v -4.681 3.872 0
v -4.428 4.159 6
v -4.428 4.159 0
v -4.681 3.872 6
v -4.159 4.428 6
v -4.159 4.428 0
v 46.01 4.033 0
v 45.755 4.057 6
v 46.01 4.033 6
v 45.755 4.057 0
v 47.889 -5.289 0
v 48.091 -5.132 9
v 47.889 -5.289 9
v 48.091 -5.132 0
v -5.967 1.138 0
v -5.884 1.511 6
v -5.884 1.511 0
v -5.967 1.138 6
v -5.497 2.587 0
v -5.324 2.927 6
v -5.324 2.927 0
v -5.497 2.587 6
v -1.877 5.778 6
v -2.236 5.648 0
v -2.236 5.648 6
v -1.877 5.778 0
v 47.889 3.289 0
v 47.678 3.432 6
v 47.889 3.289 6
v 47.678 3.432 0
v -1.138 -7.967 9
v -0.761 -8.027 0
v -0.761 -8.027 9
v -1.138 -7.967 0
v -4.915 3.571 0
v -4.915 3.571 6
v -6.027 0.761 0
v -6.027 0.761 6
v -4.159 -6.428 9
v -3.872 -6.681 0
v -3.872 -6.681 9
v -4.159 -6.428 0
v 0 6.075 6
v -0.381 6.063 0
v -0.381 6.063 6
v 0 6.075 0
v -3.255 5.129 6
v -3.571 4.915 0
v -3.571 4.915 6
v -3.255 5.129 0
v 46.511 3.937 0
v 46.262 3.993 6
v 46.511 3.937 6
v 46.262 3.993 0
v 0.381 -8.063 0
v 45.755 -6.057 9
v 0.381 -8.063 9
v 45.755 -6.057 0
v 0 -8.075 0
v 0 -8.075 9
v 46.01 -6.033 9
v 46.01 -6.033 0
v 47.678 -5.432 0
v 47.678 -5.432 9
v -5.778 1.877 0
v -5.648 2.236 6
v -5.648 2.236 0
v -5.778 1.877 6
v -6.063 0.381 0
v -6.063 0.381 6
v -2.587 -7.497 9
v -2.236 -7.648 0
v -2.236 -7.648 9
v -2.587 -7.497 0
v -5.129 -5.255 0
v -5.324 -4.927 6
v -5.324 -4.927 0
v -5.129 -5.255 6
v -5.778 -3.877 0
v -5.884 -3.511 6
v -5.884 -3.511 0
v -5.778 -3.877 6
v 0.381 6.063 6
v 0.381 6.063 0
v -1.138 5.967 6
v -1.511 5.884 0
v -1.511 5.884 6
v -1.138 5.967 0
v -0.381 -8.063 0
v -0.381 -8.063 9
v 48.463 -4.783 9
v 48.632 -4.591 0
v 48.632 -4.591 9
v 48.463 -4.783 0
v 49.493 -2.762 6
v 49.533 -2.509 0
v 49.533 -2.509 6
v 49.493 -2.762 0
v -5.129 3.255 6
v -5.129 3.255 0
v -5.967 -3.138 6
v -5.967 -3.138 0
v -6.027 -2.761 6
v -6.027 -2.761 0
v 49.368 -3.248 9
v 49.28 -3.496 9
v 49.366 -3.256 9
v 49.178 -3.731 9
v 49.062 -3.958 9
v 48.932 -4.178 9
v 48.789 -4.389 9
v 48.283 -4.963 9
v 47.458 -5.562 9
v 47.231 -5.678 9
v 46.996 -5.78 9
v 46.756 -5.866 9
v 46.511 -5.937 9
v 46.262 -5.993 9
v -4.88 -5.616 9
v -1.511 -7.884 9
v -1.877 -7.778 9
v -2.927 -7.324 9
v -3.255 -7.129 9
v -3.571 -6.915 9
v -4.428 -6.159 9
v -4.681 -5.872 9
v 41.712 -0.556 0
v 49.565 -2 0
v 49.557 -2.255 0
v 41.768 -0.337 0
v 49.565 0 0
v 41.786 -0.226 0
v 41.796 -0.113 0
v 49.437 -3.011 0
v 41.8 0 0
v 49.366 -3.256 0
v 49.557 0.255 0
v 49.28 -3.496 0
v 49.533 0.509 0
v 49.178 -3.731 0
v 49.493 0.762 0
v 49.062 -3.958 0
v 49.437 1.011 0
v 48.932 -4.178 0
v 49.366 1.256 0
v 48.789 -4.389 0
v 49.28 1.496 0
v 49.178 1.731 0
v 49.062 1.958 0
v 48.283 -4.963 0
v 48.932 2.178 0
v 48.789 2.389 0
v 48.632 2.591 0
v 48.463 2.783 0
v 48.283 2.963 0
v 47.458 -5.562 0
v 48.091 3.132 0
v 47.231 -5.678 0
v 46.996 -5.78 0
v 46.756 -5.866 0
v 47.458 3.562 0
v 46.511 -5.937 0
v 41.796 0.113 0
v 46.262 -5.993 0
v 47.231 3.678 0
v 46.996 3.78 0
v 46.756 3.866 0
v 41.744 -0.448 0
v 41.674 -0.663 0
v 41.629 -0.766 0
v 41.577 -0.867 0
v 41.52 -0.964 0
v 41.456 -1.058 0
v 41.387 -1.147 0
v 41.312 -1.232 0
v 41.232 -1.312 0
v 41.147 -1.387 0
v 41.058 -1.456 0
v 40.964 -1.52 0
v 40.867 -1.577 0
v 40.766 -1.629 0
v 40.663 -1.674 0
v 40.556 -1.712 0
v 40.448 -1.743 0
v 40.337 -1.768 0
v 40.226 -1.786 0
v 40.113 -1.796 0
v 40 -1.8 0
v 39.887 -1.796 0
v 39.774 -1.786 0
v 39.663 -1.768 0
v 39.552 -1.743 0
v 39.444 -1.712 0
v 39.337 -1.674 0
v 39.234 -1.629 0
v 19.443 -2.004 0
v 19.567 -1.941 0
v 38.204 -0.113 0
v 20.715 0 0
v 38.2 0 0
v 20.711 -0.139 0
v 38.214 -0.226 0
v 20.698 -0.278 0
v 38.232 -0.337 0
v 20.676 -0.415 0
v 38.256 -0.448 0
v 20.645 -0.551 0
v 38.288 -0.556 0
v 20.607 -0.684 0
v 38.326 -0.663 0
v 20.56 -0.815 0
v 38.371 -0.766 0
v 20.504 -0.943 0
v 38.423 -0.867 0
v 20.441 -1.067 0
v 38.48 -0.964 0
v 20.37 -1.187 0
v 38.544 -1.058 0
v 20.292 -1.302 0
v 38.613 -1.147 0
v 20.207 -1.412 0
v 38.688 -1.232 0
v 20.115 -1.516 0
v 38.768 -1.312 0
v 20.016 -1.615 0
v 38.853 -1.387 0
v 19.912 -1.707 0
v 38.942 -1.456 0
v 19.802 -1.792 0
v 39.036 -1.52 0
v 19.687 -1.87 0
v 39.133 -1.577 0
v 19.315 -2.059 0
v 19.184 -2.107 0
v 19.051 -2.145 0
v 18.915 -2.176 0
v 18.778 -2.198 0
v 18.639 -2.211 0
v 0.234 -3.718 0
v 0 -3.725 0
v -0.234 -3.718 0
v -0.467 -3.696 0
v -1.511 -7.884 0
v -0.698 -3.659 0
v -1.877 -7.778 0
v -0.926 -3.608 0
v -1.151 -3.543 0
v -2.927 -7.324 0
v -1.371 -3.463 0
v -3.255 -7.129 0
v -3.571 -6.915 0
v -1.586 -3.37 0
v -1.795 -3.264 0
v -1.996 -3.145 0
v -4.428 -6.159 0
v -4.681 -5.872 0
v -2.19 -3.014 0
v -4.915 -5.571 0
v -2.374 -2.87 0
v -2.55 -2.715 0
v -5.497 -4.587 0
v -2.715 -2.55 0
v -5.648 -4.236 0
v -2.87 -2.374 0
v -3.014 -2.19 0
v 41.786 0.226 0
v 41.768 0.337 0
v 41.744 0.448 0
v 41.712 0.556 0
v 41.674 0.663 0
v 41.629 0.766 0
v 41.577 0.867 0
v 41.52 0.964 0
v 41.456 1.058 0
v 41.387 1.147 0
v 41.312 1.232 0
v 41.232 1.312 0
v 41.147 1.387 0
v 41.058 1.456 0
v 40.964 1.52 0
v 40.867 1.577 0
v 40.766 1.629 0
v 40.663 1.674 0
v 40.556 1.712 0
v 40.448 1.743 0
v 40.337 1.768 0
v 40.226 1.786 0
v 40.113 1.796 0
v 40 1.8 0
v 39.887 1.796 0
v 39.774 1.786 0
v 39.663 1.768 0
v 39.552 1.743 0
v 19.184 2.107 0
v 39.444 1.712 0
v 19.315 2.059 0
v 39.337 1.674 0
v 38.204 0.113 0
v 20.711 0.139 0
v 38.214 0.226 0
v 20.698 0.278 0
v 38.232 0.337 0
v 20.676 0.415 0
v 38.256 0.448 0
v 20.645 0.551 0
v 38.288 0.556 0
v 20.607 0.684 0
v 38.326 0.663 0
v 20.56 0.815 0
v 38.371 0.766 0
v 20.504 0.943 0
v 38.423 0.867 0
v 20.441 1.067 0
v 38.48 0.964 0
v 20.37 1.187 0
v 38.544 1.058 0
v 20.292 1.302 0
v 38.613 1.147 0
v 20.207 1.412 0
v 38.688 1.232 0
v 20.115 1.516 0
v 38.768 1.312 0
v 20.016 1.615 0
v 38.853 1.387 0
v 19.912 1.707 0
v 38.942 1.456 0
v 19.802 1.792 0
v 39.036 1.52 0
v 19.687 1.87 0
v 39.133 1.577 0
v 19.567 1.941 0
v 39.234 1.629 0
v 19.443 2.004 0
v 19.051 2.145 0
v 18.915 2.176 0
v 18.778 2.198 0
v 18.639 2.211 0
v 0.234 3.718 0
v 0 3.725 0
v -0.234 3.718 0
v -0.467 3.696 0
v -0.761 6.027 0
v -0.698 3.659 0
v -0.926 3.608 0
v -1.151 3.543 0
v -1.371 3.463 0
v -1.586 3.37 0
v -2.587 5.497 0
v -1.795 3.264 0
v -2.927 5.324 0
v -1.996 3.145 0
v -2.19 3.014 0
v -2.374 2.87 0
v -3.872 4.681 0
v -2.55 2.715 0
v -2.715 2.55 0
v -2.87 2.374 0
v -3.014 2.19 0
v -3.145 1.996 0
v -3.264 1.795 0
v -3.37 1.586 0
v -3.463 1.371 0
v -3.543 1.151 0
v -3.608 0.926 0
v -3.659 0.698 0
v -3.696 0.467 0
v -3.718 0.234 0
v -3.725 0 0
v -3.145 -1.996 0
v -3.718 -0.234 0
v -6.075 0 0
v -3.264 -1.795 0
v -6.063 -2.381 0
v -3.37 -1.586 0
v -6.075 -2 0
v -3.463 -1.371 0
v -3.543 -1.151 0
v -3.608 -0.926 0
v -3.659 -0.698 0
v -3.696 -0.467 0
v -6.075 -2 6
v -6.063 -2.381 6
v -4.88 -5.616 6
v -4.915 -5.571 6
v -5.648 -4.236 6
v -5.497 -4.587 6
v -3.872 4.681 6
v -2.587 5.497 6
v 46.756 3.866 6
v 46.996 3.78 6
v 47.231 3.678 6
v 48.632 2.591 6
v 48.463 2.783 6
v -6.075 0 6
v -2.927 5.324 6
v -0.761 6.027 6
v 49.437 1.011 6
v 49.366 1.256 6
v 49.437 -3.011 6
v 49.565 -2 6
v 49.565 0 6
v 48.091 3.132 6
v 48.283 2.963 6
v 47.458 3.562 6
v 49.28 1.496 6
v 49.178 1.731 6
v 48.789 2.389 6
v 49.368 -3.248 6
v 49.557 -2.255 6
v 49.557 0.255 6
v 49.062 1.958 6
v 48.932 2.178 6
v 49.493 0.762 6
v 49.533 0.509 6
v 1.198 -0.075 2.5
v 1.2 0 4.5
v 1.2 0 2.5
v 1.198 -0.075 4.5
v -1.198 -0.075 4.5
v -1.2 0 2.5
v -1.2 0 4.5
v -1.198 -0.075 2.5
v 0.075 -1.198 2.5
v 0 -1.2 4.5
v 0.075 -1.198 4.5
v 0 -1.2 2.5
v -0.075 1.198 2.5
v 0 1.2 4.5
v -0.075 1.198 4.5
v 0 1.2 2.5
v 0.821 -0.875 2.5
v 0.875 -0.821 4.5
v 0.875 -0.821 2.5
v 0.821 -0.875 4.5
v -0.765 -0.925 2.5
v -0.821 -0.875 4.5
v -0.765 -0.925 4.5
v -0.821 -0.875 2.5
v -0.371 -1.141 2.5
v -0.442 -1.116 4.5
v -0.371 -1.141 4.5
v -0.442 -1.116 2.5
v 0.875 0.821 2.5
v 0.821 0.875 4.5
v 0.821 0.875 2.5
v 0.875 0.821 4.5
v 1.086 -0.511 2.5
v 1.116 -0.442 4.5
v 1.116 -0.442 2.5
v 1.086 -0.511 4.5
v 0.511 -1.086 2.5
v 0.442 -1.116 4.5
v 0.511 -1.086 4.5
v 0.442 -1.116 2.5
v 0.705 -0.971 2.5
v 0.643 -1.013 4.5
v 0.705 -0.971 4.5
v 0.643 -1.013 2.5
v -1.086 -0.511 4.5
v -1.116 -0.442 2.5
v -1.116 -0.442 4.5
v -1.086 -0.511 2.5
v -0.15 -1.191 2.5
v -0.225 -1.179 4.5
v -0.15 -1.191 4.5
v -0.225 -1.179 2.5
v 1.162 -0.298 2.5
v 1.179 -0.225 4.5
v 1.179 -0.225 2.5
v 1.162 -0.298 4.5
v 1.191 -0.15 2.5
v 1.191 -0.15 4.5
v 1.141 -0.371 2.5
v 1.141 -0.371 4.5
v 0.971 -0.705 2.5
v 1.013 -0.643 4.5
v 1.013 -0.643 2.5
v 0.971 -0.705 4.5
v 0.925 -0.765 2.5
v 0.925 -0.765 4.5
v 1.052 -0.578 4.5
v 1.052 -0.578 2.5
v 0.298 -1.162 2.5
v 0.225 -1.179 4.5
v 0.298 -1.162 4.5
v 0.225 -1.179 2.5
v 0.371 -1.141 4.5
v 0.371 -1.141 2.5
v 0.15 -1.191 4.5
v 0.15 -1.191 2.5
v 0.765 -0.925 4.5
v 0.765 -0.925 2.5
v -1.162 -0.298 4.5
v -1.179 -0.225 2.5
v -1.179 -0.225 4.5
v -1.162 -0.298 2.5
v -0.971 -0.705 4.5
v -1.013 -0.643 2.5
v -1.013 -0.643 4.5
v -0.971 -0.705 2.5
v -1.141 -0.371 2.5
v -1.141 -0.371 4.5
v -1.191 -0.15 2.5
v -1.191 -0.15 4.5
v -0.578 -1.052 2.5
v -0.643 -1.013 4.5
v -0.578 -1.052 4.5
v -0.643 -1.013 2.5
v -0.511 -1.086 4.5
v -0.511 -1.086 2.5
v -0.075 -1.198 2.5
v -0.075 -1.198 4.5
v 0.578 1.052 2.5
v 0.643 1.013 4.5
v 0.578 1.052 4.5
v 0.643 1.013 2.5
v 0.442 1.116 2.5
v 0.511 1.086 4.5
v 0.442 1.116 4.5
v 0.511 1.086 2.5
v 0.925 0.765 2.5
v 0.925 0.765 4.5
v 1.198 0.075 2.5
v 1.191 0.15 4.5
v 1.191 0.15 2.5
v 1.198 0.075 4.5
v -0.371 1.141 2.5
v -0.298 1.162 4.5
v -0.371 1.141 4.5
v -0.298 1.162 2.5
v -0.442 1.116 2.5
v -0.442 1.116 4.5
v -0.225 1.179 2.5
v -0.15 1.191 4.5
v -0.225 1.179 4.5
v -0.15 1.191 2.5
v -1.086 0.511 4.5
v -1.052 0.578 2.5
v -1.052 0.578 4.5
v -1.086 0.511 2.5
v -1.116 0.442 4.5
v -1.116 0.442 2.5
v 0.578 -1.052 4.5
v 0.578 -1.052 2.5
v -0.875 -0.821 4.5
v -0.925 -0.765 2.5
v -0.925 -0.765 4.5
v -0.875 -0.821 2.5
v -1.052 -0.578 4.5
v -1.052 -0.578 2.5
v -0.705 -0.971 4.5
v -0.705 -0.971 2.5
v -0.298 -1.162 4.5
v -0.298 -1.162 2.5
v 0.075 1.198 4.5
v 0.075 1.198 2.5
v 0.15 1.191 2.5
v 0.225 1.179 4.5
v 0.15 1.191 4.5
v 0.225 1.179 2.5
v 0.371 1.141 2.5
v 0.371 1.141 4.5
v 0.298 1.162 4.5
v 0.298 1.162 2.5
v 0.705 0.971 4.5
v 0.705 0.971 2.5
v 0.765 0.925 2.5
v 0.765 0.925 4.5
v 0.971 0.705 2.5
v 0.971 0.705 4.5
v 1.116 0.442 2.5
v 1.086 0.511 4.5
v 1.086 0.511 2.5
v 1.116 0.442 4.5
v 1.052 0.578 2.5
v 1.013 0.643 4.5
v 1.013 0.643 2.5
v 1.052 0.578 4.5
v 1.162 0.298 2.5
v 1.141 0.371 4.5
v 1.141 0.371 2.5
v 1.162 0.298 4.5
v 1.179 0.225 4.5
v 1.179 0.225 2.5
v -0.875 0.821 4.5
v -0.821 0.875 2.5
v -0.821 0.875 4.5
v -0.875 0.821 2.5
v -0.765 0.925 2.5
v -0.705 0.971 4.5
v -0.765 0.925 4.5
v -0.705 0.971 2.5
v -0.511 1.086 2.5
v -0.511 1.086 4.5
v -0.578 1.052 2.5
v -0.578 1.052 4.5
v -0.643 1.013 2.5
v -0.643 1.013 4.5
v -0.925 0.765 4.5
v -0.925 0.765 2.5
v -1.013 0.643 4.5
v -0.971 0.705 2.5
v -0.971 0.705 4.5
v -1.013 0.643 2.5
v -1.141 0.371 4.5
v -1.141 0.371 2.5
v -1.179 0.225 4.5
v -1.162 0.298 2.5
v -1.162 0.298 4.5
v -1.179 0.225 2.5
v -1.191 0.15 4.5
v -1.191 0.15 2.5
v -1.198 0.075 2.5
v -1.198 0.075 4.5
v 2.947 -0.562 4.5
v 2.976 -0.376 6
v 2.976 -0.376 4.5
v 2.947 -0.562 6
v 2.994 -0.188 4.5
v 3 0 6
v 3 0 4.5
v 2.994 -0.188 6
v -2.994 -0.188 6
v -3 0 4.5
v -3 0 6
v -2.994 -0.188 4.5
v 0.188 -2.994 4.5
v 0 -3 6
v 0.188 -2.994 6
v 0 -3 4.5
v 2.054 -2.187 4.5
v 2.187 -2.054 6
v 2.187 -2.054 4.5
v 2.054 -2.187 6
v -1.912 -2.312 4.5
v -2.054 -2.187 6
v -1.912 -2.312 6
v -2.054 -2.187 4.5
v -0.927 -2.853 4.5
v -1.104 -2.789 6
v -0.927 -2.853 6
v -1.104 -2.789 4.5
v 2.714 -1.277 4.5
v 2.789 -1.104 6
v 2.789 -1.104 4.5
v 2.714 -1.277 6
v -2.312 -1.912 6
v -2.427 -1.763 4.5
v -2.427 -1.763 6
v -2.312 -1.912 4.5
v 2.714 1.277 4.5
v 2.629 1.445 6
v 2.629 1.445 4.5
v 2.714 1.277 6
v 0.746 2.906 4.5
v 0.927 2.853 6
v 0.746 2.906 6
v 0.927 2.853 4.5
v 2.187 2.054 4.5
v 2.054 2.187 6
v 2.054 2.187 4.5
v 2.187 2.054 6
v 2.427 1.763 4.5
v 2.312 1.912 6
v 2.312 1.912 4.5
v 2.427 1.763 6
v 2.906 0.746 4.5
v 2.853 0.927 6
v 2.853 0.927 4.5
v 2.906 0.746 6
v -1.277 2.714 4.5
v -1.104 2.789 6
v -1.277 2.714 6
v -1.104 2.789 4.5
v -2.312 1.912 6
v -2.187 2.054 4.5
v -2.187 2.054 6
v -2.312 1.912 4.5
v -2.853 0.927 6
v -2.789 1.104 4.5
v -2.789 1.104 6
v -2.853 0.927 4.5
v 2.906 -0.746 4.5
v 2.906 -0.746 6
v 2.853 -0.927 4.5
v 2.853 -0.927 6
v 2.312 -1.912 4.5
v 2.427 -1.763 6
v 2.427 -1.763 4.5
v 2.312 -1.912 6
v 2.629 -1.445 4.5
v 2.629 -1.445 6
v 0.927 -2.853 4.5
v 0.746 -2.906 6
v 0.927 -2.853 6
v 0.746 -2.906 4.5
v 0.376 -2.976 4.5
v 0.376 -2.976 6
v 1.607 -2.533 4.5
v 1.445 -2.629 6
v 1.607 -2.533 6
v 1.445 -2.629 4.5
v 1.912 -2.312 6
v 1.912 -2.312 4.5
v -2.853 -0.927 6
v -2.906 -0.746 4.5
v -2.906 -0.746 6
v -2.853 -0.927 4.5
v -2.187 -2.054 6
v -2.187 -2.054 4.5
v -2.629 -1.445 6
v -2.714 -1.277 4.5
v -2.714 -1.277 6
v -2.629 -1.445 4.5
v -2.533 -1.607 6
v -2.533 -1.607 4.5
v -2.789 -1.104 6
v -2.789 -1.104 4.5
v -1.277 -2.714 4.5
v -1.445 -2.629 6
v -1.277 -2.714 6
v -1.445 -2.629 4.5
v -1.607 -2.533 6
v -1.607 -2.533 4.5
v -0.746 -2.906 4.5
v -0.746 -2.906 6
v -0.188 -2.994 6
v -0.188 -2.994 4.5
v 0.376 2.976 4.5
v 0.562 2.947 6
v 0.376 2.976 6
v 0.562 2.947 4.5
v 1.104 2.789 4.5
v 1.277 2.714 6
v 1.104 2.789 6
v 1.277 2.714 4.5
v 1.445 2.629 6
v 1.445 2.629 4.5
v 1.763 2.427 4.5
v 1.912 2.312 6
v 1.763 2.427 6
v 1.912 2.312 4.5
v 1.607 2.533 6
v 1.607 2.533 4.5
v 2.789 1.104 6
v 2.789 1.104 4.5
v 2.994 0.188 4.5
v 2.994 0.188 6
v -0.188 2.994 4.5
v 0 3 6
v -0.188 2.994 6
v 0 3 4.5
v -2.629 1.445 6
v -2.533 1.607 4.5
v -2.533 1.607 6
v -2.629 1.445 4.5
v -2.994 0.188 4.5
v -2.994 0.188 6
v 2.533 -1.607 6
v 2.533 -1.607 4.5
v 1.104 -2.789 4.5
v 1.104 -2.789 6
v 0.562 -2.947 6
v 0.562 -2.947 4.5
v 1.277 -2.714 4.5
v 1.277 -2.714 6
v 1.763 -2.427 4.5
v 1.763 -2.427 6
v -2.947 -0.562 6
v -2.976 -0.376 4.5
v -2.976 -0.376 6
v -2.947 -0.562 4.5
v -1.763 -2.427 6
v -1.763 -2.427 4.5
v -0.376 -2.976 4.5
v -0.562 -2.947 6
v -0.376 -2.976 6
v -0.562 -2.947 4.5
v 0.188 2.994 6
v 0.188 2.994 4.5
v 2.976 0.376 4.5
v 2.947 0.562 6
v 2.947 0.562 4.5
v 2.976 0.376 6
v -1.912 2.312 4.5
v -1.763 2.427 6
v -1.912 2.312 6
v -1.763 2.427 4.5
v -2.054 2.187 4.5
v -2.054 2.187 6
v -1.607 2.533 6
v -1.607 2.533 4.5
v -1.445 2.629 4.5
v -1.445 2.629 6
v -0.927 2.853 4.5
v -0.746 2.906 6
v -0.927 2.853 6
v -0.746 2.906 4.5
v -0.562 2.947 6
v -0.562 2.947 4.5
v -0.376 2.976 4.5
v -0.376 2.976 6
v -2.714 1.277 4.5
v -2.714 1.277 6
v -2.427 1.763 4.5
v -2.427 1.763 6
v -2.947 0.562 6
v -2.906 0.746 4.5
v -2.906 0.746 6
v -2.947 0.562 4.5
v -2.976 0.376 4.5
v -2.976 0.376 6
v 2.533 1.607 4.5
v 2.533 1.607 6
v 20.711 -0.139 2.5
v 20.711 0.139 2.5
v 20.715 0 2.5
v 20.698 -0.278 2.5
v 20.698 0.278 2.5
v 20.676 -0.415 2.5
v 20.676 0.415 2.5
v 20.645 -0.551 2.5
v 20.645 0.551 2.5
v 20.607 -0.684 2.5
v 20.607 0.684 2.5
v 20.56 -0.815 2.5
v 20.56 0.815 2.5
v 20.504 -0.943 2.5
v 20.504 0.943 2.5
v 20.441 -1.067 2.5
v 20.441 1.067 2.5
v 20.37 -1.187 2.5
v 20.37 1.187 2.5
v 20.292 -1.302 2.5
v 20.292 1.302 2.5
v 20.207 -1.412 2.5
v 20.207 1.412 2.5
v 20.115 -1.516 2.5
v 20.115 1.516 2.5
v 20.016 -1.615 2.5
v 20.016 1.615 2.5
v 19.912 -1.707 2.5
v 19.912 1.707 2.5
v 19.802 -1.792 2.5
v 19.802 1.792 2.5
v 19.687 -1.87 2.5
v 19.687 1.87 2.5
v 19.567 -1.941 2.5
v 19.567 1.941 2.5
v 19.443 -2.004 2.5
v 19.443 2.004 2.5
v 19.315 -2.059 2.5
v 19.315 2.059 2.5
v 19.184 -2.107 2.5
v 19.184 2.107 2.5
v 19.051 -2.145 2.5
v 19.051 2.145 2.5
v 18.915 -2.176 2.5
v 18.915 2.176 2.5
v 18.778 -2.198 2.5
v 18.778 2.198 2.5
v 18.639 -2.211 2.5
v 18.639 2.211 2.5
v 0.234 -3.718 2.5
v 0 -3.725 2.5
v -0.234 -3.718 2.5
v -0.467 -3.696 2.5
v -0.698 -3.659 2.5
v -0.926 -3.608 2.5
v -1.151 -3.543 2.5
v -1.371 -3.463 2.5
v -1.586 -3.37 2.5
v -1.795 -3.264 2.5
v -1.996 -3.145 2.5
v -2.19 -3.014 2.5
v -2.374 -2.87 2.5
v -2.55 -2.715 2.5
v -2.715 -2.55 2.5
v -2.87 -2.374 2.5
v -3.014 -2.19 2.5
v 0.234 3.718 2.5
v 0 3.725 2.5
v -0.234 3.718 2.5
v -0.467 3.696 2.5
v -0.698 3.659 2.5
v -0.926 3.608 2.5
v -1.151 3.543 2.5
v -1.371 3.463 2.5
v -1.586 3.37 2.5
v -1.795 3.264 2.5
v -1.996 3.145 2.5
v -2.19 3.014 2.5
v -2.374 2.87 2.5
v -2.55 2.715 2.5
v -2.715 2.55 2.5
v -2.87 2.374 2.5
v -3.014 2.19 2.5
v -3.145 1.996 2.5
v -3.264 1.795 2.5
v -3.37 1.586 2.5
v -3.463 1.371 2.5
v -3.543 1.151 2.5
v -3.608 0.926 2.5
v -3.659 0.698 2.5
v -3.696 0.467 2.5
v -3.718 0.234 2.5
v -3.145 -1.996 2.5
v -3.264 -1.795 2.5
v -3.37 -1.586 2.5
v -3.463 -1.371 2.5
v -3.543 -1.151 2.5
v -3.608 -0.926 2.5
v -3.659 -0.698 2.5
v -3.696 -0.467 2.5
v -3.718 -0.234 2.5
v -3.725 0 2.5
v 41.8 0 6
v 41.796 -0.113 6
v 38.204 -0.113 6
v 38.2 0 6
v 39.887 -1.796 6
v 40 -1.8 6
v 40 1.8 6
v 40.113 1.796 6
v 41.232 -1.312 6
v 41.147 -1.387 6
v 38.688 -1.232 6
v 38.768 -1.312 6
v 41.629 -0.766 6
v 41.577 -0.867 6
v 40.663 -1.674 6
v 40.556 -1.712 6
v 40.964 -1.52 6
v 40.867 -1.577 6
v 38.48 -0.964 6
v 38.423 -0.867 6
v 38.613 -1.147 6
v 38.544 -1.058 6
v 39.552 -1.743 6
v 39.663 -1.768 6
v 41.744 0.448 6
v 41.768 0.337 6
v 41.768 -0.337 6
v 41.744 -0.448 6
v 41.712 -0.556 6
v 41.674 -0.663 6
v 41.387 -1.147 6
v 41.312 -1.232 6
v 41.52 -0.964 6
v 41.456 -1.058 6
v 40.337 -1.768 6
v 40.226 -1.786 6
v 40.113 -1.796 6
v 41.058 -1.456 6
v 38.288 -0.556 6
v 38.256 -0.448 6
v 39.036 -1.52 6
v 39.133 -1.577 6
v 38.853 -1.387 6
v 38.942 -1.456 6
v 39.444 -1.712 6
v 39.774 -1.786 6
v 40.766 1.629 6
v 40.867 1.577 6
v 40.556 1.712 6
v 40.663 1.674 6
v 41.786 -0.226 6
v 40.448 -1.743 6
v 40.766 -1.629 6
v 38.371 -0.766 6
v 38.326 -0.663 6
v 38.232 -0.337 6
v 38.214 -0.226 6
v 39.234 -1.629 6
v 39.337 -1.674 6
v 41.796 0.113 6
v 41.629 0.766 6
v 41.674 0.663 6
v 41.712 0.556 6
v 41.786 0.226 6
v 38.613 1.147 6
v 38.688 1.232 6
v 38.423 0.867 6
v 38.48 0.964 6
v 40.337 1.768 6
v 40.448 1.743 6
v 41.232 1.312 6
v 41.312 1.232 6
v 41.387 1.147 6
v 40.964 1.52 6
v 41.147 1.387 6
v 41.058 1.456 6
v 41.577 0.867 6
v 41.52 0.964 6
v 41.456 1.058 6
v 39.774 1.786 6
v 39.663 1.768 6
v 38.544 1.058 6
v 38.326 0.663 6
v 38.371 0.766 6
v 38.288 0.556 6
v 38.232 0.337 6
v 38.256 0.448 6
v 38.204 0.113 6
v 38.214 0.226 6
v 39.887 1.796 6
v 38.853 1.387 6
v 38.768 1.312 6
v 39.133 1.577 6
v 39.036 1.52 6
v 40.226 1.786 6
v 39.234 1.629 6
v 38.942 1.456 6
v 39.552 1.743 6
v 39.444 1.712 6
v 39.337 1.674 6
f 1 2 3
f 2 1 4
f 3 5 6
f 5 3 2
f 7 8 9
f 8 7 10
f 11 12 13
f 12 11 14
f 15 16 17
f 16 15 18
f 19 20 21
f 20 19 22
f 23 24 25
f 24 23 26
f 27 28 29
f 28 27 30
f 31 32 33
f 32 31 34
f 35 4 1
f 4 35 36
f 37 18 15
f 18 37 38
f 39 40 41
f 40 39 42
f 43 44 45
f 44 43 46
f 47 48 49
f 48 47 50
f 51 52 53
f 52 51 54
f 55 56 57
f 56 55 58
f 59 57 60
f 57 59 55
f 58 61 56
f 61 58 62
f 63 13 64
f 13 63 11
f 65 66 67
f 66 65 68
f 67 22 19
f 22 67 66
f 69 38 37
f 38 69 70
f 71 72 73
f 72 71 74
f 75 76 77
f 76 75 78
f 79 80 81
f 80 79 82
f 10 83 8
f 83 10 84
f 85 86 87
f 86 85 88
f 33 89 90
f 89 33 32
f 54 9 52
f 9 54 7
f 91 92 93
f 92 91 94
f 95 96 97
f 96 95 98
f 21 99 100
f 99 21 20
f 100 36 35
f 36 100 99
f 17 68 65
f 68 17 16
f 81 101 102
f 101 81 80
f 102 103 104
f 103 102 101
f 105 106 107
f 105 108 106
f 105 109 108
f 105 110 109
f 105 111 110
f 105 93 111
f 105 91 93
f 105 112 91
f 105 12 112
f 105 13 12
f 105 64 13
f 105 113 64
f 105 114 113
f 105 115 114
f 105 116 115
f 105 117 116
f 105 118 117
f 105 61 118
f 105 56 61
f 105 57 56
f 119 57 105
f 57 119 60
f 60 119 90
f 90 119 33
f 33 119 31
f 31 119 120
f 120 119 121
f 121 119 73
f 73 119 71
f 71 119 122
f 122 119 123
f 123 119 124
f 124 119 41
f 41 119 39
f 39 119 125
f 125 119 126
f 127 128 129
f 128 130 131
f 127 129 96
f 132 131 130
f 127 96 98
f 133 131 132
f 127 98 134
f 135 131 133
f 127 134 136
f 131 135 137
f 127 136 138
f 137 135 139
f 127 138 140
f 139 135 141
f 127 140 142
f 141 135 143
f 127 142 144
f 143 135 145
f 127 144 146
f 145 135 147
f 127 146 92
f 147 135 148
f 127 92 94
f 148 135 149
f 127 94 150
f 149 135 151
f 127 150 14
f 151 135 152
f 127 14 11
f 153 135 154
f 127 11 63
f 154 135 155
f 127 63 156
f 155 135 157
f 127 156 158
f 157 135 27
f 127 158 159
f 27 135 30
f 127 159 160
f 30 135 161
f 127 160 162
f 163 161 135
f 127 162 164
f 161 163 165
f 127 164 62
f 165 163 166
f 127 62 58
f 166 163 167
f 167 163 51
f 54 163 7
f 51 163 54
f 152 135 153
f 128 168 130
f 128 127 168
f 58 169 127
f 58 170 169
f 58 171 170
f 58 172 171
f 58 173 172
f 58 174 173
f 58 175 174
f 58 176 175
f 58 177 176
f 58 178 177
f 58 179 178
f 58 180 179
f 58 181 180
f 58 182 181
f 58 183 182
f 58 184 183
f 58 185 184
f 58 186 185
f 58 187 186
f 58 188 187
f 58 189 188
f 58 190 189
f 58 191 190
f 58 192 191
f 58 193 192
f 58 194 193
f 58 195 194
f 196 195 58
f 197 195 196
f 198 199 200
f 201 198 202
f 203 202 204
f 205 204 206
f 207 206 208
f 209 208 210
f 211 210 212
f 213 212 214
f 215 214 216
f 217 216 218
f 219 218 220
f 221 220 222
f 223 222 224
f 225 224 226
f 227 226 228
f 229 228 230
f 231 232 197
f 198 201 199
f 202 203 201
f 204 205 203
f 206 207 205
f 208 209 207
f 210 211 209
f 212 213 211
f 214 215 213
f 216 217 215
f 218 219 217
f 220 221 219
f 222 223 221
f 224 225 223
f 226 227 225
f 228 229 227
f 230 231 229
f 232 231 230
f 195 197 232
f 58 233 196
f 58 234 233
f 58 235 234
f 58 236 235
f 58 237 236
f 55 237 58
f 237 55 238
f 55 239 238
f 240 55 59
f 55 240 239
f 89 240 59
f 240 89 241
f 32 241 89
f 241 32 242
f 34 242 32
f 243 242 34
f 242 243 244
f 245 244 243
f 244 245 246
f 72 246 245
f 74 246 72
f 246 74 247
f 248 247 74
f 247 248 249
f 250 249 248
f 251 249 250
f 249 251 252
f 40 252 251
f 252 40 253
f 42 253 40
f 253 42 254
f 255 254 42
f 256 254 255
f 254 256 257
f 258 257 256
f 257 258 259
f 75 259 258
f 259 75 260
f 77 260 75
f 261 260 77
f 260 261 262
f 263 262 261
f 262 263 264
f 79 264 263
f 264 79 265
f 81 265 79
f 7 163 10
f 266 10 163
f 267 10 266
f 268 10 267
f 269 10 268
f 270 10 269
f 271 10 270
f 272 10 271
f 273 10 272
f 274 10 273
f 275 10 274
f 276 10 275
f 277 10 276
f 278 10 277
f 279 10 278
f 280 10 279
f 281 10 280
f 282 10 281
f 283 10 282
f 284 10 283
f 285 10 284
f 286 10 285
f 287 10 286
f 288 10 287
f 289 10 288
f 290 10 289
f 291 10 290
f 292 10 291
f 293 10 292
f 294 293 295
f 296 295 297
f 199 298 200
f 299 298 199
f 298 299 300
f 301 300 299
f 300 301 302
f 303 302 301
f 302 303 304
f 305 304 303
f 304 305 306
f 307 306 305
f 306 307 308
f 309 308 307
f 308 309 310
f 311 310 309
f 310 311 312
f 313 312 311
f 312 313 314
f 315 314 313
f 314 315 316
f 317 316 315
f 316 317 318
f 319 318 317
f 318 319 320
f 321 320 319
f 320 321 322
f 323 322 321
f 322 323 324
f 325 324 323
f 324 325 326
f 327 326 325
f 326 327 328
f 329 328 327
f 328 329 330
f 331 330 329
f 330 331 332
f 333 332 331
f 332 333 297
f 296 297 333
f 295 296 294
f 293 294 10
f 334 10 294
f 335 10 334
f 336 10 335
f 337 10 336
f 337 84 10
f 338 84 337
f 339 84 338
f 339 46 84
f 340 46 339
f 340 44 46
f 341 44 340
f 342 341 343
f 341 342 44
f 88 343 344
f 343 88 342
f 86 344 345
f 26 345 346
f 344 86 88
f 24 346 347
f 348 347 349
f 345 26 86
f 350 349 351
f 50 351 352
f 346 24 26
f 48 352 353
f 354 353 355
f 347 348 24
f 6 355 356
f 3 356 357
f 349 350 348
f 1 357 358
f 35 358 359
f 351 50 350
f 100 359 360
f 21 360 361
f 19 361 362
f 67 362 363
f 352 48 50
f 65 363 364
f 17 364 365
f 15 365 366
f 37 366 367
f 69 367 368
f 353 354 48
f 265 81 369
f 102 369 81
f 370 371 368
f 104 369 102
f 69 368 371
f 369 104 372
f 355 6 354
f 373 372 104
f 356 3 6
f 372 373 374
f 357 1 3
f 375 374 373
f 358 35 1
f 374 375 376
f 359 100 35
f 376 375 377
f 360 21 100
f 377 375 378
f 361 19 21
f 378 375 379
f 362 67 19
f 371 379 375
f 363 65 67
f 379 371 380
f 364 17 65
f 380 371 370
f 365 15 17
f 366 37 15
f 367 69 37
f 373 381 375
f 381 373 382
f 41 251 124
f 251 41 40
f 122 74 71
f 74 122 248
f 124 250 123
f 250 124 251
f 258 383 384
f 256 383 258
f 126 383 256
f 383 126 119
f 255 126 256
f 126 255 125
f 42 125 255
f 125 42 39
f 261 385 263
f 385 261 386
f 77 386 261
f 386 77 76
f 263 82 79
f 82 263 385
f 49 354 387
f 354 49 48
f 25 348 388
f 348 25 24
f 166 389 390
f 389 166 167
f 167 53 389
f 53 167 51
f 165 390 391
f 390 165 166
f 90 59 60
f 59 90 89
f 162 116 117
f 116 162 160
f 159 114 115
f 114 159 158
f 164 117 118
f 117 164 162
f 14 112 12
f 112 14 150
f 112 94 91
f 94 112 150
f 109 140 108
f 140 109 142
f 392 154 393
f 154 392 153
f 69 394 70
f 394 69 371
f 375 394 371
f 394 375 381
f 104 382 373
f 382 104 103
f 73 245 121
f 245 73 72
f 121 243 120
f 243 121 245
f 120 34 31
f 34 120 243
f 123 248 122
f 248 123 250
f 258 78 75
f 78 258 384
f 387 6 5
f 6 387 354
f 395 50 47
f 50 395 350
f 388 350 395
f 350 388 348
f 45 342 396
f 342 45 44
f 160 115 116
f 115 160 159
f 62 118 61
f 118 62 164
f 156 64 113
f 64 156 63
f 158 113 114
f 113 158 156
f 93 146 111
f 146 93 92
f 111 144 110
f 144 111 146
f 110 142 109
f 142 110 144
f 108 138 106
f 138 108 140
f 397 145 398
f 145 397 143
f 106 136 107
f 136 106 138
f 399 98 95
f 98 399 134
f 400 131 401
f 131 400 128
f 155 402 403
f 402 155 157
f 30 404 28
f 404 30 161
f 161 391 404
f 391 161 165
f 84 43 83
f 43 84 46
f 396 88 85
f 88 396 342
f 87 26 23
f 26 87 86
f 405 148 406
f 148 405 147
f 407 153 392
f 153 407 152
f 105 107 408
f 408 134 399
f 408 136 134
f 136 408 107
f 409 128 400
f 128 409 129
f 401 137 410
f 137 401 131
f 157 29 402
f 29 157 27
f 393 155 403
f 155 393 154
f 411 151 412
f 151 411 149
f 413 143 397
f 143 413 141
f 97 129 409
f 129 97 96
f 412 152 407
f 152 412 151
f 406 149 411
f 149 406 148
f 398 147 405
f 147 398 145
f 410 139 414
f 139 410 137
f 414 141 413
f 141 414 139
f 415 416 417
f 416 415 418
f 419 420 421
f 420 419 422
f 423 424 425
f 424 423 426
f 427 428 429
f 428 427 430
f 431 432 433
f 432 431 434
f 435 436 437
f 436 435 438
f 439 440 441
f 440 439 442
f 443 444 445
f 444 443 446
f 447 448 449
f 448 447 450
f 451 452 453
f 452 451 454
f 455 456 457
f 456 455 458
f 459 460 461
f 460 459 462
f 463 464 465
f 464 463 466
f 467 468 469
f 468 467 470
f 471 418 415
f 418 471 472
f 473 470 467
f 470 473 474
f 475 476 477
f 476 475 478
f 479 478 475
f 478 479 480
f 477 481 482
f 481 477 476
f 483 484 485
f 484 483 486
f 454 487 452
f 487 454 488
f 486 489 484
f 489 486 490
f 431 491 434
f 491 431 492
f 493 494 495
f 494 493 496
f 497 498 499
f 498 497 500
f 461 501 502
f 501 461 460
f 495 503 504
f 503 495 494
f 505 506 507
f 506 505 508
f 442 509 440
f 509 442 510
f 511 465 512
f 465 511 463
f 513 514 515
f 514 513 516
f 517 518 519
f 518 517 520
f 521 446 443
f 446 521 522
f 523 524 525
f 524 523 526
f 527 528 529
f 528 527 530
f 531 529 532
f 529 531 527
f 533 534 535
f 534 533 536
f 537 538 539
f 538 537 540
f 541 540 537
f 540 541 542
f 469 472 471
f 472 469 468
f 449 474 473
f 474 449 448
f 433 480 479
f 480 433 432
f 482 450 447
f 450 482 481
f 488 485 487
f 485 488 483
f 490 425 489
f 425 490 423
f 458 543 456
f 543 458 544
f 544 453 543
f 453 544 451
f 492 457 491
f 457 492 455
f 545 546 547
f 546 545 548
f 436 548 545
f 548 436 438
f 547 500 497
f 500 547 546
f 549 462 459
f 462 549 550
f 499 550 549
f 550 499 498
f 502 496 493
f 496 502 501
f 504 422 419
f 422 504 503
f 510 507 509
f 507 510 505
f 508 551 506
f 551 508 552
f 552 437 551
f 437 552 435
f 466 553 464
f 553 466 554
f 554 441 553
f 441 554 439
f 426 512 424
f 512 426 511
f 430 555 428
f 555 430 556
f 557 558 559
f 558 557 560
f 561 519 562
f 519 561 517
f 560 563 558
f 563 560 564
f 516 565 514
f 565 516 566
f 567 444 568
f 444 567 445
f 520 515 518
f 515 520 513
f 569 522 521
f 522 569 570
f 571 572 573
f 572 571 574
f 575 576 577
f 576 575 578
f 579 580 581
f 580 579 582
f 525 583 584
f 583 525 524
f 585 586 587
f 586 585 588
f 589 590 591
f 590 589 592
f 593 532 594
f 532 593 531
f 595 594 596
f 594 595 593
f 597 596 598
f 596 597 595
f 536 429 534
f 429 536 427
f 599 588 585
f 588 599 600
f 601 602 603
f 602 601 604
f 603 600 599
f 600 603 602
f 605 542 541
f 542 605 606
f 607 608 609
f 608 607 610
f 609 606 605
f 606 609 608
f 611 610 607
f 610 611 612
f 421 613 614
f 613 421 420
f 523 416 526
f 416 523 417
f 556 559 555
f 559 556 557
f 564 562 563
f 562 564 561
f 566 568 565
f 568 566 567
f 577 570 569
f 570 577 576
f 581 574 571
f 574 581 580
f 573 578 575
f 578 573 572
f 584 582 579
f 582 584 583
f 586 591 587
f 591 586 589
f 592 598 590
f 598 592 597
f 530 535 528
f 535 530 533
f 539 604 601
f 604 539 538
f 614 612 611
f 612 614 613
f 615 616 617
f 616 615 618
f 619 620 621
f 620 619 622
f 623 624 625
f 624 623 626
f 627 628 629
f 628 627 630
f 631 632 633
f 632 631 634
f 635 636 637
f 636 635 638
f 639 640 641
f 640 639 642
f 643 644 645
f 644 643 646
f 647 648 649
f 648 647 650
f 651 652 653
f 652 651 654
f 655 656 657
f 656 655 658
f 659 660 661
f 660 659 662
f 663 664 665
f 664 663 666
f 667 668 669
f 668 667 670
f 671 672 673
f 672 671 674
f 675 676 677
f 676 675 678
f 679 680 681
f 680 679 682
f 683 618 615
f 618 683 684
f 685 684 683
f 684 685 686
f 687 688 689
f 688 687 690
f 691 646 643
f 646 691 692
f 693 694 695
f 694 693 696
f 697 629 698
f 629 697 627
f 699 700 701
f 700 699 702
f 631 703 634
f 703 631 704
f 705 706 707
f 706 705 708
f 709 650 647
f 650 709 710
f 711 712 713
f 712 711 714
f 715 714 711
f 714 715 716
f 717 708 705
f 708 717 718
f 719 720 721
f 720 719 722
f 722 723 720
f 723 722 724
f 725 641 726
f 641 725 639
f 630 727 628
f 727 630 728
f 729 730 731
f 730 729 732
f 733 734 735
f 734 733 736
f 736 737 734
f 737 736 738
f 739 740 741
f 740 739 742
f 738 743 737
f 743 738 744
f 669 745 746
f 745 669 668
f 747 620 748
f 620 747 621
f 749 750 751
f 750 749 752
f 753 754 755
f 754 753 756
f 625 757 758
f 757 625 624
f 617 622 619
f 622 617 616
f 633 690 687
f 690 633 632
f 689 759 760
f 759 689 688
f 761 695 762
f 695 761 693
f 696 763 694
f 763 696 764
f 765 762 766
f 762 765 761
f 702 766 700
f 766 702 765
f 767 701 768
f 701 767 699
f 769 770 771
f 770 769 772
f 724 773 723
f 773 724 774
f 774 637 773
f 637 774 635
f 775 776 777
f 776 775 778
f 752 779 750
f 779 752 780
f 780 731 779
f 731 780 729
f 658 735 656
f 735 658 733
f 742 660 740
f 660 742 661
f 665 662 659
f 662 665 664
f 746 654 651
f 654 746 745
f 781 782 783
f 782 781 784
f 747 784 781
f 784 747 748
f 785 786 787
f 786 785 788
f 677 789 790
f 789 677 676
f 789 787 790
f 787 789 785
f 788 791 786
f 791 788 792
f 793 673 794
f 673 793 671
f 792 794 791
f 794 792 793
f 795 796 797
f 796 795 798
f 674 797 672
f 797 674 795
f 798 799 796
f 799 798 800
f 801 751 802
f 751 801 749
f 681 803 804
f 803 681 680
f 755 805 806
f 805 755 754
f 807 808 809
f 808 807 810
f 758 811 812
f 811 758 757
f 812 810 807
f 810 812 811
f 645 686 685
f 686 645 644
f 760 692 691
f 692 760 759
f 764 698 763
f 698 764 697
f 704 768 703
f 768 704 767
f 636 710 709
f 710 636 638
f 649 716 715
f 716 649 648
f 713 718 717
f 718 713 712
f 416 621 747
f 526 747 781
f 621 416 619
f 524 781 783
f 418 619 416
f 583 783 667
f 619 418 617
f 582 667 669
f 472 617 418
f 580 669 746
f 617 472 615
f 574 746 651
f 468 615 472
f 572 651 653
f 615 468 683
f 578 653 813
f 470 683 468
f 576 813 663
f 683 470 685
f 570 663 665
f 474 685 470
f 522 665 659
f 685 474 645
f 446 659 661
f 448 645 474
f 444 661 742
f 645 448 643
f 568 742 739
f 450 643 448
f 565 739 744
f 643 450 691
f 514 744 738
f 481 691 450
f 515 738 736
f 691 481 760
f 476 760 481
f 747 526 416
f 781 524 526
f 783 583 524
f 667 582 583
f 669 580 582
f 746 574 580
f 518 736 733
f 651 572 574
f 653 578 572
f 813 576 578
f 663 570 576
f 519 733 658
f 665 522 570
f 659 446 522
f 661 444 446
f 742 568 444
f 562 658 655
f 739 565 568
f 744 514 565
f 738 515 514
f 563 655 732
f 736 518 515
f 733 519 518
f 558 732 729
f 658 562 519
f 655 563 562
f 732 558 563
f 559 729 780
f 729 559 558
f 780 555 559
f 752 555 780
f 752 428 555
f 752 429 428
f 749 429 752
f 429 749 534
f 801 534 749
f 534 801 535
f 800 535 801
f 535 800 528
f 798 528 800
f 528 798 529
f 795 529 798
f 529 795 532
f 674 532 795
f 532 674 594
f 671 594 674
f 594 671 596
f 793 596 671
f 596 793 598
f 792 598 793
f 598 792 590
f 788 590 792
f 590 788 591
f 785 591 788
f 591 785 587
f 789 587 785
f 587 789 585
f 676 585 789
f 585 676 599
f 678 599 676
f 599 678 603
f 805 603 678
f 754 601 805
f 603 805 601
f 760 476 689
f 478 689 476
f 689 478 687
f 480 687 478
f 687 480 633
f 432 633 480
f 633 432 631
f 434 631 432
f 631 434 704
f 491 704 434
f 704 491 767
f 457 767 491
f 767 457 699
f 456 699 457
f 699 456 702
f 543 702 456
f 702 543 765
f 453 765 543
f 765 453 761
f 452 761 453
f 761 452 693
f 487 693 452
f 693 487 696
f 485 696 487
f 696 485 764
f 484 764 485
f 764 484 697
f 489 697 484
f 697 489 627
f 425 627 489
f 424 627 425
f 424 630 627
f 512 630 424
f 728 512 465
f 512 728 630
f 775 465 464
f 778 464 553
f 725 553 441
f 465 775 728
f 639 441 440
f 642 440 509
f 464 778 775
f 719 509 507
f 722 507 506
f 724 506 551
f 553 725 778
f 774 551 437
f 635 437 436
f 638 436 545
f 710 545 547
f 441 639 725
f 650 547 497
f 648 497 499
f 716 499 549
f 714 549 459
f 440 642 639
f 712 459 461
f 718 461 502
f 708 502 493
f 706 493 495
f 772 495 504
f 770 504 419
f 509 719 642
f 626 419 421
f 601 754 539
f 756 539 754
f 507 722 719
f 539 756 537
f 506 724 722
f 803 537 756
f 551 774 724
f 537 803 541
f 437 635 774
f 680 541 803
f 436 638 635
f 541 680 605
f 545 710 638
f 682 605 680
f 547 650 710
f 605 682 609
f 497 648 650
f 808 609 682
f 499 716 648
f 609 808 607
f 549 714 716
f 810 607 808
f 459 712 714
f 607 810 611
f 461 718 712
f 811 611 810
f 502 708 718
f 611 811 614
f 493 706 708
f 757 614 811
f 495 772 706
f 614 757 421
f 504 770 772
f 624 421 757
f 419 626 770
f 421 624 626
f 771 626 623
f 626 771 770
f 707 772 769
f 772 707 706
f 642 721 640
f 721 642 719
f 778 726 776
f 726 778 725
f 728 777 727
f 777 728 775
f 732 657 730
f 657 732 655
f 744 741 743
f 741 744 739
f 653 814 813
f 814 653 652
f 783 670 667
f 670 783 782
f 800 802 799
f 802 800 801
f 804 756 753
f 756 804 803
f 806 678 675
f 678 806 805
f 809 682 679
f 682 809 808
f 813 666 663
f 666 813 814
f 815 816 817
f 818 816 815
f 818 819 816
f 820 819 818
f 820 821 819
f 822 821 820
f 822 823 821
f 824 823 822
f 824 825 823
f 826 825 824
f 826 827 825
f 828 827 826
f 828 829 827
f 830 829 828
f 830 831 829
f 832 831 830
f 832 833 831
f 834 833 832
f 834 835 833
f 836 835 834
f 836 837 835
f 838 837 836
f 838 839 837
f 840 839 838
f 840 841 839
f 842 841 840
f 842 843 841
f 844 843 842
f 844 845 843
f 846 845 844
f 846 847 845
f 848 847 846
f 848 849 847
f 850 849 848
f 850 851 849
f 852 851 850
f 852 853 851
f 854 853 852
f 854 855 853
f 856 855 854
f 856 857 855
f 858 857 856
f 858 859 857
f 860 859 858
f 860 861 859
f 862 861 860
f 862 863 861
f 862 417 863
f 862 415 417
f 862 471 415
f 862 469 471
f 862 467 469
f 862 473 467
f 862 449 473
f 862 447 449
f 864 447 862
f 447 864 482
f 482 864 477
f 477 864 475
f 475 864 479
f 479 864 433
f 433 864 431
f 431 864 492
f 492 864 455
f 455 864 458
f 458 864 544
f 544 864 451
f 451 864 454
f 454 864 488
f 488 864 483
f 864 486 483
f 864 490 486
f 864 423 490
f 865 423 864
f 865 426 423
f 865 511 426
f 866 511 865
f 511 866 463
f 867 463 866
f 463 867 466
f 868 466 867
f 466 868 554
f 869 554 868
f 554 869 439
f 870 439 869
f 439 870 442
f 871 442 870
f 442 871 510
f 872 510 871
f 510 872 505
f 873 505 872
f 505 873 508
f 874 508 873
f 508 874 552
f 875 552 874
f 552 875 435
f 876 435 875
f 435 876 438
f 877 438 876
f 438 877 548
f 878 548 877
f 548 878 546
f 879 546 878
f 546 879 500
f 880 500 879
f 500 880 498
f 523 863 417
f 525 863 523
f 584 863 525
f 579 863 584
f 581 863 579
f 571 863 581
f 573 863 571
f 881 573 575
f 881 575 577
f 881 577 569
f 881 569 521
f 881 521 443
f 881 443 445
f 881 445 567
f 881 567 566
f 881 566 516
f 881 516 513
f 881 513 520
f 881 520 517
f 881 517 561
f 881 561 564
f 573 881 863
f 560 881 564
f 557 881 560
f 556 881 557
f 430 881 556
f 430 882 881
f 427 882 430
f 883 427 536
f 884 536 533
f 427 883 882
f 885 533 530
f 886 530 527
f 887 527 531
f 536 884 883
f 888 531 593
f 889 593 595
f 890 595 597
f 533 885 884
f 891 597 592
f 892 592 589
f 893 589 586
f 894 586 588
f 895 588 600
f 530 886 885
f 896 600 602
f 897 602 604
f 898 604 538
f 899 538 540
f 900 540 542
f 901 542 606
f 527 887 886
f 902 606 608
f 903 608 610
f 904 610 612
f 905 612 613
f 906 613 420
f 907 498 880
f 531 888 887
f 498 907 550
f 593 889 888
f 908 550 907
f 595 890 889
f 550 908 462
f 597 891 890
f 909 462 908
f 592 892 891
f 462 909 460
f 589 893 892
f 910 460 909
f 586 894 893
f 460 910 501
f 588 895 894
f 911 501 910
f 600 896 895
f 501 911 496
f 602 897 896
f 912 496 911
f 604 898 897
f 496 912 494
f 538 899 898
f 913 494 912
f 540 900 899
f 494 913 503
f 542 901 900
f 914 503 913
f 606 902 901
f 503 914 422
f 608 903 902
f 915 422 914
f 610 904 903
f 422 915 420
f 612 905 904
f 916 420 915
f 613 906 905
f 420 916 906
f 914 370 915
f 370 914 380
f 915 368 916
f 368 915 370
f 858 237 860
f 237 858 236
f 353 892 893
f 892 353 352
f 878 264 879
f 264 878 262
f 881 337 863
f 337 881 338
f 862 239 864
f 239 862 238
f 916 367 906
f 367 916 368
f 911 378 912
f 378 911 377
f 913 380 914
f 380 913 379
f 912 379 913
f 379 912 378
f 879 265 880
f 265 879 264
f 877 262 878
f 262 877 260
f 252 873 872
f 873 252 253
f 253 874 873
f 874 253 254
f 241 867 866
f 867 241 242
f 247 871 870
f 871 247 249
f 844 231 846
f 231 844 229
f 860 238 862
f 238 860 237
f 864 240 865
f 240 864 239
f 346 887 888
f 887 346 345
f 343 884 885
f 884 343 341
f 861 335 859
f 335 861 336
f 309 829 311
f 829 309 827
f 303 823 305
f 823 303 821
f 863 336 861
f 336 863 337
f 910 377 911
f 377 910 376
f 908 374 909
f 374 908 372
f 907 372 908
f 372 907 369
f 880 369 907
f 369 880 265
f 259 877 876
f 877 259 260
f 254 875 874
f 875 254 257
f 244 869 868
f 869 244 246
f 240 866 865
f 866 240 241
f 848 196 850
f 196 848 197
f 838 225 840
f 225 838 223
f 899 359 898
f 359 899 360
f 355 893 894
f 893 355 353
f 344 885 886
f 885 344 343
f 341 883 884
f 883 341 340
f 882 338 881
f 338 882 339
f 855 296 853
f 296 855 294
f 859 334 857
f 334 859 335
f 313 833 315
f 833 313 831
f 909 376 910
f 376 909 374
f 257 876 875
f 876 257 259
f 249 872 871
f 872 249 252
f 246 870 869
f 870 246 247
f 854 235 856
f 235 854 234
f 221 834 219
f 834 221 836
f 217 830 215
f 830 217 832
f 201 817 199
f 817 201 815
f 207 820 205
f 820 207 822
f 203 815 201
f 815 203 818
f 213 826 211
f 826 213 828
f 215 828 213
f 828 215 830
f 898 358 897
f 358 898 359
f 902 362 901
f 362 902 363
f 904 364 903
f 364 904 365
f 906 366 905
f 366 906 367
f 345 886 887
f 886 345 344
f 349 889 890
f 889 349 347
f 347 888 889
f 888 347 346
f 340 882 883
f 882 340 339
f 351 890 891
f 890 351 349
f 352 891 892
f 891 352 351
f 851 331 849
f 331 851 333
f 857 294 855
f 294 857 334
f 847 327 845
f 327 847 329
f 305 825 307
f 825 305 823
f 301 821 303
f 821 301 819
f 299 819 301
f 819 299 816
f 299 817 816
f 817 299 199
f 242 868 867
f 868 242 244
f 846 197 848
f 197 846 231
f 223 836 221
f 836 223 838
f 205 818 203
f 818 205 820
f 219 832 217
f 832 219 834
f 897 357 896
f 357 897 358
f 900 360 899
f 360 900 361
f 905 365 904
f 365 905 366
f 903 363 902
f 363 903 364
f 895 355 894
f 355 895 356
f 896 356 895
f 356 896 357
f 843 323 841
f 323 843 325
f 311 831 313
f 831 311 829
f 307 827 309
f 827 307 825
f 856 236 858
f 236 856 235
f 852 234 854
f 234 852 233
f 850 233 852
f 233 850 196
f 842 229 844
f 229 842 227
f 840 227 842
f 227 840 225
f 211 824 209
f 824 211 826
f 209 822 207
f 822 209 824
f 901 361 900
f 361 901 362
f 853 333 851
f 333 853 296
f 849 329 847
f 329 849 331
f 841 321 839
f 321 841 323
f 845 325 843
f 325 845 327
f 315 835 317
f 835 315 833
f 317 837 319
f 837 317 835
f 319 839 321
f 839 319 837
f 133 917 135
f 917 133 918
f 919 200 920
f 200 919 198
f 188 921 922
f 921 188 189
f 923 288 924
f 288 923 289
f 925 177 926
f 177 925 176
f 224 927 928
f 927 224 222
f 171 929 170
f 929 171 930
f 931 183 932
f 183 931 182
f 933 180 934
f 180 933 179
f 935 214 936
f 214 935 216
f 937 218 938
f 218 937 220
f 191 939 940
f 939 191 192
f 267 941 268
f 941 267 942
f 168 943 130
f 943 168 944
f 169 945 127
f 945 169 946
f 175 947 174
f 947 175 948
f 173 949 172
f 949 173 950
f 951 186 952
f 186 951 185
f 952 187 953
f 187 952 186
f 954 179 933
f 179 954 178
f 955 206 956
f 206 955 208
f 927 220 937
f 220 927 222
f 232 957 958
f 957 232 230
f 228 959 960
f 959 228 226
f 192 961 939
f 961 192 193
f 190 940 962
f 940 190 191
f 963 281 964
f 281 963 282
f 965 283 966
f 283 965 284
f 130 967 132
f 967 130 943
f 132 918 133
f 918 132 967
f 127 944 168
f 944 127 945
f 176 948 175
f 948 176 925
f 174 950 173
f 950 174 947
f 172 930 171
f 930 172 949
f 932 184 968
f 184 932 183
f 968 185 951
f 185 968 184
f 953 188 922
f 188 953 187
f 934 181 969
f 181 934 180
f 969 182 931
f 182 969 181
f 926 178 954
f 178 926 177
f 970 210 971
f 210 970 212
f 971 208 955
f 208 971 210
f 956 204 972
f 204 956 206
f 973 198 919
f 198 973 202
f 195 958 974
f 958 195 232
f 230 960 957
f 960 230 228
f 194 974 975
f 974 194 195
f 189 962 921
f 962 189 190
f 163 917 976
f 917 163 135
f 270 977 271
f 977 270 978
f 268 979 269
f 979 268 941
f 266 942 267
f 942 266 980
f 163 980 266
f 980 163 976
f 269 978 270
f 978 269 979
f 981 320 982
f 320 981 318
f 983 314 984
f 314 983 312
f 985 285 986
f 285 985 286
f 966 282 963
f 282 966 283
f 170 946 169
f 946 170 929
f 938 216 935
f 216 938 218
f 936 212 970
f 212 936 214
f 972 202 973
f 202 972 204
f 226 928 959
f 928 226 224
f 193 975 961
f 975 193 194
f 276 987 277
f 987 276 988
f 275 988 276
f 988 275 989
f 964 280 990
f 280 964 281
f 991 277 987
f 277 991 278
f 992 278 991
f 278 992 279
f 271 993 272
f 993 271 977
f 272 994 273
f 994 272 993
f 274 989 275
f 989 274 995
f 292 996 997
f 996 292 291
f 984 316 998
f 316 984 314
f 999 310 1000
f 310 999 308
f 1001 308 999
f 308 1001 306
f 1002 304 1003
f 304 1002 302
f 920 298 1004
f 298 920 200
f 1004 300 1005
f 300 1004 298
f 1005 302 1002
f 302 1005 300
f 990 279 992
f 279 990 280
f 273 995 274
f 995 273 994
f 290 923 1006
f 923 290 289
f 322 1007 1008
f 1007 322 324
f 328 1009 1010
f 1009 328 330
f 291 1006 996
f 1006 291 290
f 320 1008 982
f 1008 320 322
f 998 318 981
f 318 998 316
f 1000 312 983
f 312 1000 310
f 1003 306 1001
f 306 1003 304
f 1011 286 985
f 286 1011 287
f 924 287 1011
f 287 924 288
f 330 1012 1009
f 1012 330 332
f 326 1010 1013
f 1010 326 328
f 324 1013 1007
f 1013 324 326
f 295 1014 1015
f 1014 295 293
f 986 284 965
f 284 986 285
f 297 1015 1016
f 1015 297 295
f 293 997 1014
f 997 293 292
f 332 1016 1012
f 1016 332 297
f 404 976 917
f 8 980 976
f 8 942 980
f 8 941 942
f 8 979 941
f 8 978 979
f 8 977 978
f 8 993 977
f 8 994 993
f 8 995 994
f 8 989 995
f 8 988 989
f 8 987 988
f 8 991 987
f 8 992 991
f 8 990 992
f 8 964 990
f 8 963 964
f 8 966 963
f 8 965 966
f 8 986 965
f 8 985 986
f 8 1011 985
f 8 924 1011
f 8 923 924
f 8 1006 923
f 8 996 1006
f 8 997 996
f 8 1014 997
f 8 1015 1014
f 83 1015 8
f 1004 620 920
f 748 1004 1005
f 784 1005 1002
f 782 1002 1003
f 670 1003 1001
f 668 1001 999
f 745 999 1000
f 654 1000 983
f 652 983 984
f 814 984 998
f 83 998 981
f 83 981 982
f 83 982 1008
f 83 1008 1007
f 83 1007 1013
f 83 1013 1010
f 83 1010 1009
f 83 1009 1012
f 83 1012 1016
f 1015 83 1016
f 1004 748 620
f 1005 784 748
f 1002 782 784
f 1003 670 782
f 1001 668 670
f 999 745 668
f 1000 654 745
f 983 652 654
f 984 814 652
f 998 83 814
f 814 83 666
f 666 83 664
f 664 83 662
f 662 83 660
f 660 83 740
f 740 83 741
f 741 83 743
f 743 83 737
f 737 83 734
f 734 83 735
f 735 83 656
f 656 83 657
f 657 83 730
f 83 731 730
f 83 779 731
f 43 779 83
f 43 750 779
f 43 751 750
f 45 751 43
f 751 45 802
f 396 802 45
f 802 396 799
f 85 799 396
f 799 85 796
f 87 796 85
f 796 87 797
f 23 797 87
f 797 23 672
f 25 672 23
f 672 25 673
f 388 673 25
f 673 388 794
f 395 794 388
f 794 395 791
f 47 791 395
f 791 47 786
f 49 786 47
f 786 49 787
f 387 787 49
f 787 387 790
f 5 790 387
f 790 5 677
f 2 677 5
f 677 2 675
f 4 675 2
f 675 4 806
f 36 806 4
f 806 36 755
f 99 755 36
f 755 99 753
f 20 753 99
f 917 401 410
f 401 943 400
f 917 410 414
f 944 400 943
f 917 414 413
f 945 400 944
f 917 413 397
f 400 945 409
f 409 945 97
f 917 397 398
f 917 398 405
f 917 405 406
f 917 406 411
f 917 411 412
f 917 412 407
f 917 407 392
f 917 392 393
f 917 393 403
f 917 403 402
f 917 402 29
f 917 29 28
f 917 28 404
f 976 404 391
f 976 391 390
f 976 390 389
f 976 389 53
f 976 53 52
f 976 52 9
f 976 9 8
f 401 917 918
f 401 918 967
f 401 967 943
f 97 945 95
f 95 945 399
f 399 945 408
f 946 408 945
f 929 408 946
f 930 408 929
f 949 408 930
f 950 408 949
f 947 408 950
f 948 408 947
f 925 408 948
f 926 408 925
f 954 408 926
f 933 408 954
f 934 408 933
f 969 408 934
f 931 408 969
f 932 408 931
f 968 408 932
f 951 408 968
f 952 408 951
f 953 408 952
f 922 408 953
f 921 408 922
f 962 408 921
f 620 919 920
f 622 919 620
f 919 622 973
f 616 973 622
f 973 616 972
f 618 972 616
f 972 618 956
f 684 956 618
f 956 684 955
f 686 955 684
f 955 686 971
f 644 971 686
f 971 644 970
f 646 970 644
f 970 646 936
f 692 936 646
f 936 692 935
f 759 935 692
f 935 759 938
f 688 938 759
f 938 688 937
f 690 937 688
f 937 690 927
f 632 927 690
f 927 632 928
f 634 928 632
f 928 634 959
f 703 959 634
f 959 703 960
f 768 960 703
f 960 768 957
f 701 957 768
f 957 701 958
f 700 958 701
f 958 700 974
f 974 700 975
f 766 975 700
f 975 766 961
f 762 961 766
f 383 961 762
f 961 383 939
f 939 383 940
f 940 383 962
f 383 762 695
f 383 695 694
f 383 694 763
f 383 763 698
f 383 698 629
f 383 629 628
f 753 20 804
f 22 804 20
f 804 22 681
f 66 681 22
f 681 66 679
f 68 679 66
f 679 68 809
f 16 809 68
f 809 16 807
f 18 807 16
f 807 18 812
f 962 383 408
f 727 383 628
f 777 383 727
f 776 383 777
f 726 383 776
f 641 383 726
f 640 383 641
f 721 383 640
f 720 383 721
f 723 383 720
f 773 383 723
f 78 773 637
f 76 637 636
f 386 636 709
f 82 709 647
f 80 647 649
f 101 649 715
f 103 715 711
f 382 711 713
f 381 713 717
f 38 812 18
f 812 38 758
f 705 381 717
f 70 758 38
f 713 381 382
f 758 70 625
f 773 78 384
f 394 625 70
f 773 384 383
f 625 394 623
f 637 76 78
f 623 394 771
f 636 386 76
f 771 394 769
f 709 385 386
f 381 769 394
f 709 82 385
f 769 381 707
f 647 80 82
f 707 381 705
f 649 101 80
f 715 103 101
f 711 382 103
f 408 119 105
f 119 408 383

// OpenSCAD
$fn=100;


rotate([180,0,0])translate([0,0,-3])
difference(){
    hull(){
        cylinder(6,12.15/2,12.15/2,true);
        translate([0,2,0])cylinder(6,12.15/2,12.15/2,true);
        translate([45.5,0,0]) cylinder(6,8.13/2,8.13/2,true);
        translate([45.5,2,0]) cylinder(6,8.13/2,8.13/2,true);   
        translate([0,0,-3])   
        hull(){
            cylinder(6,12.15/2,12.15/2,true);
            translate([0,2,0])cylinder(6,12.15/2,12.15/2,true);
            translate([45.5,0,0]) cylinder(6,8.13/2,8.13/2,true);
            translate([45.5,2,0]) cylinder(6,8.13/2,8.13/2,true);   
        }
    } 

    cylinder(10,1.2,1.2,true);
    translate([0,0,-9]) cylinder(15,3,3,true);

    translate([0,0,2]){
        hull(){
            cylinder(3,7.45/2,7.45/2,true);
            translate([18.5,0,0]) cylinder(3,4.43/2,4.43/2,true);
        } 
    }
    translate([40,0,0]) cylinder(16,1.8,1.8,true);
    translate([-14,-9,-8])rotate([0,0,-2.5])cube([80,15,5]);
}

 
